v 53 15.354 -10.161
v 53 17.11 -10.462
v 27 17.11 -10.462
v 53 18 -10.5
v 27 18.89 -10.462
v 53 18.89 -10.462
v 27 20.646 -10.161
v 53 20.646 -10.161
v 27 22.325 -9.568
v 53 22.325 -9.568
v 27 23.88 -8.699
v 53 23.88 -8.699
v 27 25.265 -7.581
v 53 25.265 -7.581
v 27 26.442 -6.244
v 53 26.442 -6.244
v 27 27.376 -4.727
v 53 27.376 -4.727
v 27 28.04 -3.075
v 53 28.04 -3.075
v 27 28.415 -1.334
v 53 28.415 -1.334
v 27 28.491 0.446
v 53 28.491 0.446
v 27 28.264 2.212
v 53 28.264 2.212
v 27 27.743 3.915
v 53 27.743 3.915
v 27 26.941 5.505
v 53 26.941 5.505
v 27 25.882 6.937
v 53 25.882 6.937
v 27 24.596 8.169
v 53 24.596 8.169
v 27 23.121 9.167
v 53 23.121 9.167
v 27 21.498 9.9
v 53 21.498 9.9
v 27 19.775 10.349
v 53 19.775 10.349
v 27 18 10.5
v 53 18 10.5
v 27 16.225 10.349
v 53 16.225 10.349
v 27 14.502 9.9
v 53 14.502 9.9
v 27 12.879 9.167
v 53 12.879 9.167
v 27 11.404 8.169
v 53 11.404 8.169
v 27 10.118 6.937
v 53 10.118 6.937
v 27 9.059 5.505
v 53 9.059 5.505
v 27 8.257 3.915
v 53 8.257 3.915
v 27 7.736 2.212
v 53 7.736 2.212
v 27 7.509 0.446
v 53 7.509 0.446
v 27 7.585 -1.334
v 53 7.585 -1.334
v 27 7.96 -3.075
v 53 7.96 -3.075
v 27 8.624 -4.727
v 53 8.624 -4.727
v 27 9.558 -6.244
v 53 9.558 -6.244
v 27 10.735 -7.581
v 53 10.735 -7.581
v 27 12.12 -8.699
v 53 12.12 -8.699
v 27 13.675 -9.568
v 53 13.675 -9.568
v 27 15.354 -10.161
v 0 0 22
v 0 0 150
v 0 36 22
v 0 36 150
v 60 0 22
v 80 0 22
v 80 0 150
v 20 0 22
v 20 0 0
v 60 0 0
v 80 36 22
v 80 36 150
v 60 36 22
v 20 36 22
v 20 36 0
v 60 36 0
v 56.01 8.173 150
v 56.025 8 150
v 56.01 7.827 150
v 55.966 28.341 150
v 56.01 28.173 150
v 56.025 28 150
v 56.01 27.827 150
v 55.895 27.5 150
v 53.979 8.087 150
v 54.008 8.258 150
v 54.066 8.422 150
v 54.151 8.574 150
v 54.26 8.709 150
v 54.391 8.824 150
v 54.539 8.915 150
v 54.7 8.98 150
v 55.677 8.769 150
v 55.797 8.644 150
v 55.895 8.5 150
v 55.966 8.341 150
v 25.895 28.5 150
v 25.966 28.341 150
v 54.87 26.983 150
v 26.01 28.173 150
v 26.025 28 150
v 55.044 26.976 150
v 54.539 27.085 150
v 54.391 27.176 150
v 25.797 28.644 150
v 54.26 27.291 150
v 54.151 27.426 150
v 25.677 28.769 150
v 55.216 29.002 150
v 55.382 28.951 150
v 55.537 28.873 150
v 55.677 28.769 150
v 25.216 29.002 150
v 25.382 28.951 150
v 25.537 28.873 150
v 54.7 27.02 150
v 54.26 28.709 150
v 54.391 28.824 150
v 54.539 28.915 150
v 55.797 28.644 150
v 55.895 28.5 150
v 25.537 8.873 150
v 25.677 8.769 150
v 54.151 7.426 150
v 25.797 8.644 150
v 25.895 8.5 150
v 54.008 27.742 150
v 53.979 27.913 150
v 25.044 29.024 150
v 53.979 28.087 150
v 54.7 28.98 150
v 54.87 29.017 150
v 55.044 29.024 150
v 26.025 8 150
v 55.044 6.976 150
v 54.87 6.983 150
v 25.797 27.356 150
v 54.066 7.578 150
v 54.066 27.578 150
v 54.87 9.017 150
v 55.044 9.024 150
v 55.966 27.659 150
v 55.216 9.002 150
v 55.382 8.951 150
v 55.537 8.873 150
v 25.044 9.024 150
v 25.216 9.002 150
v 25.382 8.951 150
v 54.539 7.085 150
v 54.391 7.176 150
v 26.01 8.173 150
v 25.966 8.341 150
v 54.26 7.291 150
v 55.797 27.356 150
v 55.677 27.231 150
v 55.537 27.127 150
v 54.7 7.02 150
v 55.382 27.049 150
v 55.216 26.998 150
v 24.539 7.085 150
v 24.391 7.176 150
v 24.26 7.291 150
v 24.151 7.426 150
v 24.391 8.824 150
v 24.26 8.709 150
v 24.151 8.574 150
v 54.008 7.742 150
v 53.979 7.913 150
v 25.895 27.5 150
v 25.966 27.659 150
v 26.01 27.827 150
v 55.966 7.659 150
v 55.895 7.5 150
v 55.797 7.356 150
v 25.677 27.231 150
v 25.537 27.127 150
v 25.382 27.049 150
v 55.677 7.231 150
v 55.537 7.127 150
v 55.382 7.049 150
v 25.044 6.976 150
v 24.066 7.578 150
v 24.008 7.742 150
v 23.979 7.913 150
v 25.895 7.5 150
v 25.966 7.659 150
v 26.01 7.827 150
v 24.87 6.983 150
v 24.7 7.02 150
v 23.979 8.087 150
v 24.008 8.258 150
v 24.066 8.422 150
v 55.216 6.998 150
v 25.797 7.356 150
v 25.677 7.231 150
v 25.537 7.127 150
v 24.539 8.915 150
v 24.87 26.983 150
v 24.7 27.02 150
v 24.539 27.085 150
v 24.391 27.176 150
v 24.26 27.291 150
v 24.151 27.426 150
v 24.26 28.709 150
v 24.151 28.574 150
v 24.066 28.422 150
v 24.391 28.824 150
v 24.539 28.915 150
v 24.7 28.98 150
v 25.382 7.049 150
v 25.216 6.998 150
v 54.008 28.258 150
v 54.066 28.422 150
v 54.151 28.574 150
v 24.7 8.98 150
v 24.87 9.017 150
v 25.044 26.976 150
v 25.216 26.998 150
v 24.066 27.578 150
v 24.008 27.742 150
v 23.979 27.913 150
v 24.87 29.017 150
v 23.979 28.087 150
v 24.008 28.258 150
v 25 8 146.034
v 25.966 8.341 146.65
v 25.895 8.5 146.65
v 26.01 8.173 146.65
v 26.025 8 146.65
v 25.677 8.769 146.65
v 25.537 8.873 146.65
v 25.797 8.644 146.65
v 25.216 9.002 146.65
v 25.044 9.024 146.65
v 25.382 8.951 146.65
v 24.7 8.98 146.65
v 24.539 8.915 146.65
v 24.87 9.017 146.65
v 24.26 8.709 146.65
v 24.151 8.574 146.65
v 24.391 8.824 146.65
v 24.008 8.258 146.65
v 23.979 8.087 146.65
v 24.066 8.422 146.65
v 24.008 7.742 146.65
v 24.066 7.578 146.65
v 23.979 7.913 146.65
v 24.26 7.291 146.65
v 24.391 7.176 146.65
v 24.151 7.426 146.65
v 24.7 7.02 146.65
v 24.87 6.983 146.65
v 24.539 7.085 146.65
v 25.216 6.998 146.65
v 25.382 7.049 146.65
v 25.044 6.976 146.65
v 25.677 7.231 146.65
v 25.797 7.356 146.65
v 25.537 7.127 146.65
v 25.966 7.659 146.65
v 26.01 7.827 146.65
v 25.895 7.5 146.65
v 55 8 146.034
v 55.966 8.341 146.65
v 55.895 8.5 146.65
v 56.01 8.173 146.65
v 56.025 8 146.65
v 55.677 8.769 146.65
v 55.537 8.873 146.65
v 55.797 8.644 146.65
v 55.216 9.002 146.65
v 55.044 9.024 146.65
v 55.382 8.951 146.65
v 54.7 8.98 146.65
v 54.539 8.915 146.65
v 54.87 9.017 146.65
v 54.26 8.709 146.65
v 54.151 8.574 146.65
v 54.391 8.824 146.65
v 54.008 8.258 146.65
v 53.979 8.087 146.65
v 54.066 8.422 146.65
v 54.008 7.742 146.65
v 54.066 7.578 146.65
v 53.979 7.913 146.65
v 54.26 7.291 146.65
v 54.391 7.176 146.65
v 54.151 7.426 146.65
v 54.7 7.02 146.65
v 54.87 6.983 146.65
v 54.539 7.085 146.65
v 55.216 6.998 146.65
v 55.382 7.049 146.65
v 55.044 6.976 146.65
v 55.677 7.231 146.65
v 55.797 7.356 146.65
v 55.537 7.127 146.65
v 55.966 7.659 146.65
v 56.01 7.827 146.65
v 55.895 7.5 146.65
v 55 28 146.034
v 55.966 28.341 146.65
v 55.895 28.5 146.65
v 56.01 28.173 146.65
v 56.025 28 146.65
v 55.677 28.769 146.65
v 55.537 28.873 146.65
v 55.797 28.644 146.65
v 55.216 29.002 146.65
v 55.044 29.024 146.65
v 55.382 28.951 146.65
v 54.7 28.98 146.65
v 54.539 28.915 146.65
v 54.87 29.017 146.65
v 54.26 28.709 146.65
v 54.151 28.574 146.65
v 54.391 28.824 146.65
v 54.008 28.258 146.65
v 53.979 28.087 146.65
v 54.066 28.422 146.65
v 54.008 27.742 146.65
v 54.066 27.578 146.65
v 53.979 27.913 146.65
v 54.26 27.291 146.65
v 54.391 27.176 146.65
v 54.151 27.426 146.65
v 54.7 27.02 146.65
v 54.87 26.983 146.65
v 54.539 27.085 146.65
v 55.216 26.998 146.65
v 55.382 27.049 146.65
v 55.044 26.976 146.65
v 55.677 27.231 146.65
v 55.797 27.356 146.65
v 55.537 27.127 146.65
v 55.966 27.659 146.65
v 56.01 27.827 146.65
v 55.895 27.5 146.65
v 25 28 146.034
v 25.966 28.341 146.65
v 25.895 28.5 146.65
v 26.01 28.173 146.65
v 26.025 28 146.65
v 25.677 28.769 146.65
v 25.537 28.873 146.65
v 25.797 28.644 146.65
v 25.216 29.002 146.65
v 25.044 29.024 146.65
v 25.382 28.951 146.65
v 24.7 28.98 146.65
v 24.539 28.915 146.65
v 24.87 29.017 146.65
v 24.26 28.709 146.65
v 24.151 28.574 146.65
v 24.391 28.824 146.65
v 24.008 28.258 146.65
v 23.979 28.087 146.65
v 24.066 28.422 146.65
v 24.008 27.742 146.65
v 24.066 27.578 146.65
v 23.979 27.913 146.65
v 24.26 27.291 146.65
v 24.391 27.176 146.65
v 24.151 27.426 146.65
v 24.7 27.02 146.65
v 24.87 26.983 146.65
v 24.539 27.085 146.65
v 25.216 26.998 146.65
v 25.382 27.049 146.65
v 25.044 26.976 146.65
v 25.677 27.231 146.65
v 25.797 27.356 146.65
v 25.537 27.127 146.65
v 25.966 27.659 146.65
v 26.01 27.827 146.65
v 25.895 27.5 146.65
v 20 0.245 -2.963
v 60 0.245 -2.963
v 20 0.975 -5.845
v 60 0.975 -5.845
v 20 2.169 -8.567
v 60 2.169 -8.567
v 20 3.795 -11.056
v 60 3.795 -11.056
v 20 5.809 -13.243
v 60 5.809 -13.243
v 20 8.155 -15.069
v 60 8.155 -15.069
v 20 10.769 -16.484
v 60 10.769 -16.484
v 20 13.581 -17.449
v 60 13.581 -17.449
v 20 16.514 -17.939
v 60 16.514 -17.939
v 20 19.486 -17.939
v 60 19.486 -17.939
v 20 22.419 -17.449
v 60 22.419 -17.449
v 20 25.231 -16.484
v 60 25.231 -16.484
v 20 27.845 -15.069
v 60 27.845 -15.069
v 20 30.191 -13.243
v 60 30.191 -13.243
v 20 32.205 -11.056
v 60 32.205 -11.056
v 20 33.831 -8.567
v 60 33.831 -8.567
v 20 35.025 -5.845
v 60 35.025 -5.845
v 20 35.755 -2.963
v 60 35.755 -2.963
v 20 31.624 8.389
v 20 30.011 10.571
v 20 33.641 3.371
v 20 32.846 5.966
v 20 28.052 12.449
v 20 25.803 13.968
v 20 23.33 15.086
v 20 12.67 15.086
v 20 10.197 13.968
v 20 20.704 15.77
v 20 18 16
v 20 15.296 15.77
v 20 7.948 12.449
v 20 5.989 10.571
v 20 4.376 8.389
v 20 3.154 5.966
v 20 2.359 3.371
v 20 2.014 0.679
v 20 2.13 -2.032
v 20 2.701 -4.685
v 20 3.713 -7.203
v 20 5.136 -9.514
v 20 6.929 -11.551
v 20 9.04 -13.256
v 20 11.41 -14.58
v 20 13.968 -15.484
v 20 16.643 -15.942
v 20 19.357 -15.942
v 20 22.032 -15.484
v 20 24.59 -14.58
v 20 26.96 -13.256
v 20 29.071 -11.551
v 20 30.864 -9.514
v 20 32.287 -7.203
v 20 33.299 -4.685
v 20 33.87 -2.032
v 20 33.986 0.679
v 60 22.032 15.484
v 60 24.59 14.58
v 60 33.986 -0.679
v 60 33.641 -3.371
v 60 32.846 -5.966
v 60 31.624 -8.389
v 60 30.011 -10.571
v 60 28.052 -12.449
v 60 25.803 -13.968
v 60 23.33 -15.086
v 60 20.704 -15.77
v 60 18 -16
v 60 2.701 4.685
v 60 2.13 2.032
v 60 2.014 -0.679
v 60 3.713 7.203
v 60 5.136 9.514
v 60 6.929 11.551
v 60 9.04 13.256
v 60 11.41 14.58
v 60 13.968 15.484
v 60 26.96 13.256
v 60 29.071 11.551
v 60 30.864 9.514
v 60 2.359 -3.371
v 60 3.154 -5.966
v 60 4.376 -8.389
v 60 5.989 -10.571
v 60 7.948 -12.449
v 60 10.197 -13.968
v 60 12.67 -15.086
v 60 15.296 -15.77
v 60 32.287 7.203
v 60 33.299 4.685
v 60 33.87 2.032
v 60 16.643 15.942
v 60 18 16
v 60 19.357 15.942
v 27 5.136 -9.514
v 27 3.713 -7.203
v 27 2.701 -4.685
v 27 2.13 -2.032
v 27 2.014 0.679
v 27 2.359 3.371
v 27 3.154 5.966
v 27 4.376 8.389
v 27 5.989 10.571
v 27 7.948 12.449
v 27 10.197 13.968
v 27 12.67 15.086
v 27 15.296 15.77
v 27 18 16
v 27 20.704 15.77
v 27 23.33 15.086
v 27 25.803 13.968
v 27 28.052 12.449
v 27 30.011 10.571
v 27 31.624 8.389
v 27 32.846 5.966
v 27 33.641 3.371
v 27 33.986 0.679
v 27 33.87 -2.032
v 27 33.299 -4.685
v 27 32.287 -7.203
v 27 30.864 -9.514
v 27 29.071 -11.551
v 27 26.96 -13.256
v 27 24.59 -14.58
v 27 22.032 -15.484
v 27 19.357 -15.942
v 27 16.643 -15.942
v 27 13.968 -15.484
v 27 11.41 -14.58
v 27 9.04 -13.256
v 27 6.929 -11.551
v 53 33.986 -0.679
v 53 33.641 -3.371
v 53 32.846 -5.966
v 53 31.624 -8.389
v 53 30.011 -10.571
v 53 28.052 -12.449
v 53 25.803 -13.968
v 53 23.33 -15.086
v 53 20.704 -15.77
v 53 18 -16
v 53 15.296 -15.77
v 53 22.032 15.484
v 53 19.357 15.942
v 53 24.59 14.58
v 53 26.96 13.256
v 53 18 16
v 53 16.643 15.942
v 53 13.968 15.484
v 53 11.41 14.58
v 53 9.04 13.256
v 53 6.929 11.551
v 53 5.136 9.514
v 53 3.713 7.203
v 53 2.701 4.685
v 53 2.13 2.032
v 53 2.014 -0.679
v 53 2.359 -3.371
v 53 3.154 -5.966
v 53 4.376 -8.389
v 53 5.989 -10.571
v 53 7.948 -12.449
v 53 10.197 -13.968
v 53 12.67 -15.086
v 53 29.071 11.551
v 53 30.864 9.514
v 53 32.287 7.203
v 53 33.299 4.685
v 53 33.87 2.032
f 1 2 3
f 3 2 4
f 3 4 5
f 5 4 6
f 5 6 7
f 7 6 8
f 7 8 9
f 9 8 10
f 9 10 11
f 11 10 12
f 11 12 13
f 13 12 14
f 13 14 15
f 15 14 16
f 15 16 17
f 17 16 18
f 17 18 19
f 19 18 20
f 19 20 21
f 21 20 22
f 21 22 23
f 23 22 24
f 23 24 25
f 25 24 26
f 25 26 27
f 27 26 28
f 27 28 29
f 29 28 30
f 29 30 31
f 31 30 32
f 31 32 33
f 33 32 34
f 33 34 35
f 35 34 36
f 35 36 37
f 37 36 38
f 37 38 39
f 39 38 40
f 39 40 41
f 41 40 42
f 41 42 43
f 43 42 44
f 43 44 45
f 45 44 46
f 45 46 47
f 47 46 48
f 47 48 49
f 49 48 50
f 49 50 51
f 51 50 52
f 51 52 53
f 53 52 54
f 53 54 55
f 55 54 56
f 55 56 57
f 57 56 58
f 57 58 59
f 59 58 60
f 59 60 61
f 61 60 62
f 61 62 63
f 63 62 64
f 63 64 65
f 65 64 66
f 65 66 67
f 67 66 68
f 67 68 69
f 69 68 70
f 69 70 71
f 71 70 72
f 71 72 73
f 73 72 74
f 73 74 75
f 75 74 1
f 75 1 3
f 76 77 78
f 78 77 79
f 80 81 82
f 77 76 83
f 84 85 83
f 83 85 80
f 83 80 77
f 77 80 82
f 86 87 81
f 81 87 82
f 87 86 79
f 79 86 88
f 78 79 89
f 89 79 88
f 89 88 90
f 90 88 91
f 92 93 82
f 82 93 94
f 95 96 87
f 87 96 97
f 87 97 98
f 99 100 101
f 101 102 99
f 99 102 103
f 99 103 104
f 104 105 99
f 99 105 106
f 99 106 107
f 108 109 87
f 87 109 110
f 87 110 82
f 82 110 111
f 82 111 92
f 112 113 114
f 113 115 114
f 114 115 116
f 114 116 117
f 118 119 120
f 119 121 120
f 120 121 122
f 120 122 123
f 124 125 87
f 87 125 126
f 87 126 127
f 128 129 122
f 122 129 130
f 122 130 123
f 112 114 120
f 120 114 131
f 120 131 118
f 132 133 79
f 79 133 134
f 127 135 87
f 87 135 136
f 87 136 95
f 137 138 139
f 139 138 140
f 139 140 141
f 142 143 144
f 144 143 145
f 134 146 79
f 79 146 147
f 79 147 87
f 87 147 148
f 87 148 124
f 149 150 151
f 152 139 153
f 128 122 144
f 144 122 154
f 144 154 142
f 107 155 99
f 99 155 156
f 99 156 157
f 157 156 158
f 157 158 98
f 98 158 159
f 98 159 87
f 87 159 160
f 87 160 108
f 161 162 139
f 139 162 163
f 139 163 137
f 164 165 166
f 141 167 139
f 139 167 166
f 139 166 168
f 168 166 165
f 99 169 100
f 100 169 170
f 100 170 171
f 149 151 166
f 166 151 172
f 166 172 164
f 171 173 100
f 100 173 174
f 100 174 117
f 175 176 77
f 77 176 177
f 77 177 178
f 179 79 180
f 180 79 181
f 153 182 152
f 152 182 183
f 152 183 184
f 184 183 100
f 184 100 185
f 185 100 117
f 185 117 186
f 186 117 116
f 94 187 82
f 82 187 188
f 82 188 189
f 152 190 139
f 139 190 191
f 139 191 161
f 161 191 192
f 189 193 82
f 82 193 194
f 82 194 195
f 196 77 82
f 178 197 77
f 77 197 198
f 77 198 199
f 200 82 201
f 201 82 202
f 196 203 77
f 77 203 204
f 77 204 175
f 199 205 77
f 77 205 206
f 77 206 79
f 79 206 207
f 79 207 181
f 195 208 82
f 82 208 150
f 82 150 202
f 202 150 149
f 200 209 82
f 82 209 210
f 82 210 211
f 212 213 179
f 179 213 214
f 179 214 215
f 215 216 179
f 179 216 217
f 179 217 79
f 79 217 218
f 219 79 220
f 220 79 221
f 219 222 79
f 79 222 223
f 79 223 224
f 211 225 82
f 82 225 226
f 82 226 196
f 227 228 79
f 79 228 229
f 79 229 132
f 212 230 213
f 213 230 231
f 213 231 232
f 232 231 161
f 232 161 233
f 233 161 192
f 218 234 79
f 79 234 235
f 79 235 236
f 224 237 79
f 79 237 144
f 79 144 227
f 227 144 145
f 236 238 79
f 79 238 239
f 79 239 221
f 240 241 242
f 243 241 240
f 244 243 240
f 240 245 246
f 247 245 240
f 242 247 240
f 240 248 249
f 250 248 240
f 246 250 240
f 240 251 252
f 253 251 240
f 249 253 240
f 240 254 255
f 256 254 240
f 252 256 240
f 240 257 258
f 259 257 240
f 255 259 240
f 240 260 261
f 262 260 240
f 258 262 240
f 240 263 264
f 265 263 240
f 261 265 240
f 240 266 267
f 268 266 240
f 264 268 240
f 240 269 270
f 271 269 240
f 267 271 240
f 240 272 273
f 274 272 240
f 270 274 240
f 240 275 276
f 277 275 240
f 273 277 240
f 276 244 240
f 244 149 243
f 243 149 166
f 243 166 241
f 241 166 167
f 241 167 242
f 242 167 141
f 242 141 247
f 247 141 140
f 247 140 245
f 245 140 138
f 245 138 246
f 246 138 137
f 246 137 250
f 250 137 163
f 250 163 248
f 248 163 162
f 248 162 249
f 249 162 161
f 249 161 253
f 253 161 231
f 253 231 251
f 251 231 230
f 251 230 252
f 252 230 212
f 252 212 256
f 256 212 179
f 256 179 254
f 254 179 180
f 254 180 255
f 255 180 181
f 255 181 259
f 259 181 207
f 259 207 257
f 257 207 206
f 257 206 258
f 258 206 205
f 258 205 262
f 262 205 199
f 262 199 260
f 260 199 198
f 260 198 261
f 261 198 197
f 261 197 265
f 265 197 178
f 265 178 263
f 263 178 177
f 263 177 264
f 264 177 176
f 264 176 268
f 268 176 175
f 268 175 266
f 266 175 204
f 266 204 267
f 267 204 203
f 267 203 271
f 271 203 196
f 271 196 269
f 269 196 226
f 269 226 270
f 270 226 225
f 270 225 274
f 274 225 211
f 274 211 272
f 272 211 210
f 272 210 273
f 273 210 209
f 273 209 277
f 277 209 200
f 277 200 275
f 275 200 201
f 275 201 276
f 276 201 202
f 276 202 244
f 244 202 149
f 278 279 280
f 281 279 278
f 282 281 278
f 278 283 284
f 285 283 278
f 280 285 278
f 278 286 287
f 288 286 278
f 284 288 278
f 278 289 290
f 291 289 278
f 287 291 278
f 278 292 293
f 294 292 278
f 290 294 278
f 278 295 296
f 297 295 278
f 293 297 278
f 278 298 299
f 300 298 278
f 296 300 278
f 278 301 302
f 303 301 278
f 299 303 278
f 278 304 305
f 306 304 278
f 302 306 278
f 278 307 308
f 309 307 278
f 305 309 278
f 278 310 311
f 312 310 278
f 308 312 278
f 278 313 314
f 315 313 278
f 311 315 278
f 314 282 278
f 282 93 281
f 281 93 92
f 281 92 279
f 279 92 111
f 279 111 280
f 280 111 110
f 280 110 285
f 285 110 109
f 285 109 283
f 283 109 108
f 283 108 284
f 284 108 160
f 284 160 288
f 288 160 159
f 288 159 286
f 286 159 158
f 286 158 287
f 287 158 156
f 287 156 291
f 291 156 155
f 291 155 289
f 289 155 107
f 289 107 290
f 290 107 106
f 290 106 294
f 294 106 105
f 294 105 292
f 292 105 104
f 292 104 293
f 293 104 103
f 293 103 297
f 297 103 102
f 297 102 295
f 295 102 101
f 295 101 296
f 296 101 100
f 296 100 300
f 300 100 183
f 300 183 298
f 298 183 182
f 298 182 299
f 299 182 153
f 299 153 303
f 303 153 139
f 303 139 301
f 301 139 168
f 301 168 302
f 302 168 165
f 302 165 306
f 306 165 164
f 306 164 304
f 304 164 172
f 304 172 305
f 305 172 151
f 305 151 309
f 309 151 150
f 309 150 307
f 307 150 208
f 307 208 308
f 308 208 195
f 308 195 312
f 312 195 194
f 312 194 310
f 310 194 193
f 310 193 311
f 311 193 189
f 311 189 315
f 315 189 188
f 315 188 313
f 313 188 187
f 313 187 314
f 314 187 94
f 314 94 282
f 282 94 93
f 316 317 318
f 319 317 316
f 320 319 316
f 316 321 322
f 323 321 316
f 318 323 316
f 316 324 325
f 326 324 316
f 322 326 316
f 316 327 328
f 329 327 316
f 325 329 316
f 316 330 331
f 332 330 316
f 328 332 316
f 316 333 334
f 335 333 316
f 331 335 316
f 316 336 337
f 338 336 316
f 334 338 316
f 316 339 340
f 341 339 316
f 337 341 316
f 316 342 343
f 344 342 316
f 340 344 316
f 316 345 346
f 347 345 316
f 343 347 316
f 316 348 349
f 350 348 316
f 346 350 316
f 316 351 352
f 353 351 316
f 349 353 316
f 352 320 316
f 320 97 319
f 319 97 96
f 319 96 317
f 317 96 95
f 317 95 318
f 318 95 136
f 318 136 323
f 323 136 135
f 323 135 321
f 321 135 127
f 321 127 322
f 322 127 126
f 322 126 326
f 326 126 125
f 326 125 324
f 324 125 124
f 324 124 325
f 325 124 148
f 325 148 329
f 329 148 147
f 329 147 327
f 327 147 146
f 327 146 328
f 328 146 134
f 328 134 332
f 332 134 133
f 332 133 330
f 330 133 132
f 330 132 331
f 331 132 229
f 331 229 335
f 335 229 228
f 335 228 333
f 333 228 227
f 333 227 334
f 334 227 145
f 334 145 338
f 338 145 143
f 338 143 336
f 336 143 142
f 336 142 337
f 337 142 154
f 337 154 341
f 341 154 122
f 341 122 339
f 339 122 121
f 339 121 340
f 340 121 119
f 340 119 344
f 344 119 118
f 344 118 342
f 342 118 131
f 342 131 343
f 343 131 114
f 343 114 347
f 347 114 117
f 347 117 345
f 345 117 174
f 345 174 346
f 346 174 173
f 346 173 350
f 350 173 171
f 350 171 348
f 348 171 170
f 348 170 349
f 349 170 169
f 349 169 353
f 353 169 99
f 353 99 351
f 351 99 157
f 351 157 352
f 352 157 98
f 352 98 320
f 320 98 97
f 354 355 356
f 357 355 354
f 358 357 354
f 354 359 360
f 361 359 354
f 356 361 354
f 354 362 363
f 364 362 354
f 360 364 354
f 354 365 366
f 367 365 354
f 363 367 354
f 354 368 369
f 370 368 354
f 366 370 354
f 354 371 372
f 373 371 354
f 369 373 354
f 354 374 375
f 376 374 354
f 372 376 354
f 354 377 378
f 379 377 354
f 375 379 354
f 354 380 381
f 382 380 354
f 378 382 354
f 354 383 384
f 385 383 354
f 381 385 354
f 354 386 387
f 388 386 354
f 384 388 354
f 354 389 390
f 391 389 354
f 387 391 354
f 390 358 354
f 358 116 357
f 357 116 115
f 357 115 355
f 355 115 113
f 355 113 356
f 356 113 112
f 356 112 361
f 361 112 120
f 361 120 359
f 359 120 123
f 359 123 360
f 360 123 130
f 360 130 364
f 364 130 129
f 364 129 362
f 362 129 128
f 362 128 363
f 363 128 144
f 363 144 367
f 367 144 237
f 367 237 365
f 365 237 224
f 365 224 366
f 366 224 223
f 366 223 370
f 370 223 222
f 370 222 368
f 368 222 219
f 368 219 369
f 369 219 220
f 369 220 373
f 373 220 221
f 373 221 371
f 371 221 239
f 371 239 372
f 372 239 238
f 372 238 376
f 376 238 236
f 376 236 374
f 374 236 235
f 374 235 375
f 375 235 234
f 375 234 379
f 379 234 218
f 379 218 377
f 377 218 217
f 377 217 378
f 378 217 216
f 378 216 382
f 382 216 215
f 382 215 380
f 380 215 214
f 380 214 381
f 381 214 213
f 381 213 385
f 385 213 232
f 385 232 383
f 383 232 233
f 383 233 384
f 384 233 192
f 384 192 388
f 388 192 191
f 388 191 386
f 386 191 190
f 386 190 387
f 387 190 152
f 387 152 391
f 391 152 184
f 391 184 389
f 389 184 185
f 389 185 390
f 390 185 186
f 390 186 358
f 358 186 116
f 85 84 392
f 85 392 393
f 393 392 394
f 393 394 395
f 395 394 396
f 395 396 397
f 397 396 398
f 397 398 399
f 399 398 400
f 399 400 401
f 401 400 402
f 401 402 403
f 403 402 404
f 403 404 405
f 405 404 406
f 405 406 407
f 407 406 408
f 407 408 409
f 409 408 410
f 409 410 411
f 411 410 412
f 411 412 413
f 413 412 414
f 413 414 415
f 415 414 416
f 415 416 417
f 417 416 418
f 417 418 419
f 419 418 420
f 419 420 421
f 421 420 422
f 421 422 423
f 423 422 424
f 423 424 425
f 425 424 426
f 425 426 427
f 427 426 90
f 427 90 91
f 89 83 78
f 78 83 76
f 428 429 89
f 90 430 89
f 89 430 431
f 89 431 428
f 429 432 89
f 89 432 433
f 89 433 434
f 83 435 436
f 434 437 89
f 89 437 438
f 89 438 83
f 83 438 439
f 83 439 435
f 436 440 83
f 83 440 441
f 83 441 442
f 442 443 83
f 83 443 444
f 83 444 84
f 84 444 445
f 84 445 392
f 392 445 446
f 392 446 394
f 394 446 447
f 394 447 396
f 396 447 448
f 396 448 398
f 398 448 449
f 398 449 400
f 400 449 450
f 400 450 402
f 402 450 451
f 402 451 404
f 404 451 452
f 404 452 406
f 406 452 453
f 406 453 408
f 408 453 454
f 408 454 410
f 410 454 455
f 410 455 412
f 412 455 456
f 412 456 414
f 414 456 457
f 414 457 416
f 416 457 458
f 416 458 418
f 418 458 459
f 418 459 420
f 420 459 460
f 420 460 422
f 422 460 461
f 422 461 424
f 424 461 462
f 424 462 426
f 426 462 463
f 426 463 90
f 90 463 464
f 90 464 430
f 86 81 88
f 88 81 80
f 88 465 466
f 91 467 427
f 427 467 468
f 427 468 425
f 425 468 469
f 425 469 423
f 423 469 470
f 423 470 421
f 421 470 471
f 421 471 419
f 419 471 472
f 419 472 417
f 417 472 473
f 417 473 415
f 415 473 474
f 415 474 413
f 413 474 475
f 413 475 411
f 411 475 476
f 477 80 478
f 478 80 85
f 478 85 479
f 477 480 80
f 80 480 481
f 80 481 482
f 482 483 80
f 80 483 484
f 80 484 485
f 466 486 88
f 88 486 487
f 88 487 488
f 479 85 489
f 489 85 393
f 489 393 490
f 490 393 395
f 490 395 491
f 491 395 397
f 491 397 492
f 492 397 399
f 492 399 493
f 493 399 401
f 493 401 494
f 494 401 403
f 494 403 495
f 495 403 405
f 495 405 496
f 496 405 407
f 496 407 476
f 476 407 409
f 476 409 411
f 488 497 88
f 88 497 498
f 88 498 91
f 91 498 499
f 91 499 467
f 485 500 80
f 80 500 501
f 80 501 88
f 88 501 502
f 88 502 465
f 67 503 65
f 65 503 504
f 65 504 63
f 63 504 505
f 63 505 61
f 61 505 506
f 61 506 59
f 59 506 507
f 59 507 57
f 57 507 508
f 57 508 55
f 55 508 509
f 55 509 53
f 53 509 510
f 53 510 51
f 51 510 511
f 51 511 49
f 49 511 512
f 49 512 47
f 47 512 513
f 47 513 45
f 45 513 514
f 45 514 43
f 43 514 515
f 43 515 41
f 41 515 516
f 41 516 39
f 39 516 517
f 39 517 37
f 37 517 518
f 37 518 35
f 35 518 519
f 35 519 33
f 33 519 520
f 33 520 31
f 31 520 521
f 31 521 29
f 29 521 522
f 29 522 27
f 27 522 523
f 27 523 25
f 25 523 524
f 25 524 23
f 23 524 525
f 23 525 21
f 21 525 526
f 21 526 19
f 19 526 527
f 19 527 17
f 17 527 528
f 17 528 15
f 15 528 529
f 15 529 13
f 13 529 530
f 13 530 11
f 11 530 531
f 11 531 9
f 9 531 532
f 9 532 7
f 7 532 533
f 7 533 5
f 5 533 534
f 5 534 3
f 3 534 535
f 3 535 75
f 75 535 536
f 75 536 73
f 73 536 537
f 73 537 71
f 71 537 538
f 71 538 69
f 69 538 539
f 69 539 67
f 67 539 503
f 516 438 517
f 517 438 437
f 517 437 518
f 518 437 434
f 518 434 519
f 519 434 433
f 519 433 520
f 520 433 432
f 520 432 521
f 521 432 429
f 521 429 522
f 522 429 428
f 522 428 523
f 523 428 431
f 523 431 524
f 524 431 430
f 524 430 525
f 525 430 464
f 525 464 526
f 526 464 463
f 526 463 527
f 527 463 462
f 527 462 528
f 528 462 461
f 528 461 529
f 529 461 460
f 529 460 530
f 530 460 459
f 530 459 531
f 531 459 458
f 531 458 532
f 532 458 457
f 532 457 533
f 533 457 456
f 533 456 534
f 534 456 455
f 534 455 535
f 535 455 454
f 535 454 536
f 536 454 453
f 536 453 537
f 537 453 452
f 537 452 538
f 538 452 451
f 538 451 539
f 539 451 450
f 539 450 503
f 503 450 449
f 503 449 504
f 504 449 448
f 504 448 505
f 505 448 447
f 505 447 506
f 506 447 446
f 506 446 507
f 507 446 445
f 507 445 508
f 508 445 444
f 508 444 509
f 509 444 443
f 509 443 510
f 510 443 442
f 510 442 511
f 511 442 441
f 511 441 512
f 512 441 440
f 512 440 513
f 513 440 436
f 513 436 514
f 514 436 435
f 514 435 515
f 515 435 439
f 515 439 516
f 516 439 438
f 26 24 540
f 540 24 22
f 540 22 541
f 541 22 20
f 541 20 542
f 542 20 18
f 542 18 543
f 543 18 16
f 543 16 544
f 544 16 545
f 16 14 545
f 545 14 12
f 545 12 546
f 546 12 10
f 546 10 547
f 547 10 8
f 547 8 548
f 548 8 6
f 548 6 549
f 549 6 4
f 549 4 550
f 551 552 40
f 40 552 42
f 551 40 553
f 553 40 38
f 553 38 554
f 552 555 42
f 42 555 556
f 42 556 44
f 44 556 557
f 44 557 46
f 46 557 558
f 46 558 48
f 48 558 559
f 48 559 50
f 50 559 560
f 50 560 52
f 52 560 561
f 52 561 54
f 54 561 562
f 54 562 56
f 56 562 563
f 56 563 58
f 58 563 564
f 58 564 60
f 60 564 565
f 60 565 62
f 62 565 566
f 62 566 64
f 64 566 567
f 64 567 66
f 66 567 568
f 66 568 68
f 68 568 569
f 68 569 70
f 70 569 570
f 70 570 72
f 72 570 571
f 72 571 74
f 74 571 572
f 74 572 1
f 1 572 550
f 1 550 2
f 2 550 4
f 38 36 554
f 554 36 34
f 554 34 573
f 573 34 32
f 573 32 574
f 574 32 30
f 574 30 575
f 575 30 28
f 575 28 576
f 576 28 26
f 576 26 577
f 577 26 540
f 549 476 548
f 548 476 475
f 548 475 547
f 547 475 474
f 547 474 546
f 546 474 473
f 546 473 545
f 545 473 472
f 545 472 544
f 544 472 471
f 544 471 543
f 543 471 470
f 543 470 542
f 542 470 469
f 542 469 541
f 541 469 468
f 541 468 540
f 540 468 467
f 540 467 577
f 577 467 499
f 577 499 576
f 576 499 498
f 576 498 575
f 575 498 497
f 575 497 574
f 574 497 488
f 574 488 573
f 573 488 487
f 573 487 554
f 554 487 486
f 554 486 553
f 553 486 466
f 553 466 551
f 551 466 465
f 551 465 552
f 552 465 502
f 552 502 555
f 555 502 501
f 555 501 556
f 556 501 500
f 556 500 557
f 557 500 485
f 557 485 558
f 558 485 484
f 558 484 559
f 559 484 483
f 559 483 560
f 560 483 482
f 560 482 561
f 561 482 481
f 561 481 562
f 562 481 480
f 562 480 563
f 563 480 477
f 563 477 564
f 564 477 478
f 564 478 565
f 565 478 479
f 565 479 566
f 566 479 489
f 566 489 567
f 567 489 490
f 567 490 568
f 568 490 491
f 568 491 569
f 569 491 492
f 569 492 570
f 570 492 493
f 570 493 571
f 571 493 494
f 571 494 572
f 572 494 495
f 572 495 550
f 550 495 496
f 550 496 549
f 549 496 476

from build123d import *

# Parameters (mm, degrees)
SKETCH1_W               = 80
SKETCH1_H               = 36
BOSS_EXTRUDE1_DEPTH     = 150
M2_5_TAPPED_HOLE1_D     = 2.05
M2_5_TAPPED_HOLE1_DEPTH = 3.35
M2_5_TAPPED_HOLE1_TIP   = 0.615882135
BOSS_EXTRUDE2_DEPTH     = 80
SKETCH7_W               = 20
SKETCH7_H               = 40
CUT_EXTRUDE4_DEPTH      = 80
SKETCH5_R               = 10.5
CUT_EXTRUDE5_DEPTH      = 80
SKETCH8_R               = 16
CUT_EXTRUDE6_DEPTH      = 7


with BuildPart() as part:
    # Sketch1 → Boss-Extrude1 (new body)
    with BuildSketch(Plane.XY):
        with Locations((40, 18)):
            Rectangle(SKETCH1_W, SKETCH1_H)
    extrude(amount=BOSS_EXTRUDE1_DEPTH)

    # M2.5 Tapped Hole1
    with Locations(Plane(origin=(25, 28, 150), x_dir=(1, 0, 0), z_dir=(0, 0, 1))):
        with Locations((0, 0), (30, 0), (30, -20), (0, -20)):
            Hole(M2_5_TAPPED_HOLE1_D / 2, depth=M2_5_TAPPED_HOLE1_DEPTH)
            with Locations((0, 0, -(M2_5_TAPPED_HOLE1_DEPTH + M2_5_TAPPED_HOLE1_TIP / 2))):  # 118° drill point
                Cone(0, M2_5_TAPPED_HOLE1_D / 2, M2_5_TAPPED_HOLE1_TIP, mode=Mode.SUBTRACT)

    # Sketch4 → Boss-Extrude2 (add)
    with BuildSketch(Plane.ZY):
        with BuildLine():
            Line((0, 36), (0, 0))
            ThreePointArc((0, 0), (-18, 18), (0, 36))
        make_face()
    extrude(amount=-BOSS_EXTRUDE2_DEPTH)

    # Sketch7 → Cut-Extrude4 (cut)
    with BuildSketch(Plane(origin=(0, 36, 0), x_dir=(1, 0, 0), z_dir=(0, 1, 0))):
        with Locations((10, -2)):
            Rectangle(SKETCH7_W, SKETCH7_H)
        with Locations((70, -2)):
            Rectangle(SKETCH7_W, SKETCH7_H)
    extrude(amount=-CUT_EXTRUDE4_DEPTH, mode=Mode.SUBTRACT)

    # Sketch5 → Cut-Extrude5 (cut)
    with BuildSketch(Plane.ZY):
        with Locations((0, 18)):
            Circle(SKETCH5_R)
    extrude(amount=-CUT_EXTRUDE5_DEPTH, mode=Mode.SUBTRACT)

    # Sketch8 → Cut-Extrude6 (cut)
    with BuildSketch(Plane.ZY.offset(-20)):
        with Locations((0, 18)):
            Circle(SKETCH8_R)
    cut_extrude6 = extrude(amount=-CUT_EXTRUDE6_DEPTH, mode=Mode.SUBTRACT)

    # Mirror1: Cut-Extrude6 across plane
    add(cut_extrude6.mirror(Plane.ZY.offset(-40)), mode=Mode.SUBTRACT)


solid = part.part
